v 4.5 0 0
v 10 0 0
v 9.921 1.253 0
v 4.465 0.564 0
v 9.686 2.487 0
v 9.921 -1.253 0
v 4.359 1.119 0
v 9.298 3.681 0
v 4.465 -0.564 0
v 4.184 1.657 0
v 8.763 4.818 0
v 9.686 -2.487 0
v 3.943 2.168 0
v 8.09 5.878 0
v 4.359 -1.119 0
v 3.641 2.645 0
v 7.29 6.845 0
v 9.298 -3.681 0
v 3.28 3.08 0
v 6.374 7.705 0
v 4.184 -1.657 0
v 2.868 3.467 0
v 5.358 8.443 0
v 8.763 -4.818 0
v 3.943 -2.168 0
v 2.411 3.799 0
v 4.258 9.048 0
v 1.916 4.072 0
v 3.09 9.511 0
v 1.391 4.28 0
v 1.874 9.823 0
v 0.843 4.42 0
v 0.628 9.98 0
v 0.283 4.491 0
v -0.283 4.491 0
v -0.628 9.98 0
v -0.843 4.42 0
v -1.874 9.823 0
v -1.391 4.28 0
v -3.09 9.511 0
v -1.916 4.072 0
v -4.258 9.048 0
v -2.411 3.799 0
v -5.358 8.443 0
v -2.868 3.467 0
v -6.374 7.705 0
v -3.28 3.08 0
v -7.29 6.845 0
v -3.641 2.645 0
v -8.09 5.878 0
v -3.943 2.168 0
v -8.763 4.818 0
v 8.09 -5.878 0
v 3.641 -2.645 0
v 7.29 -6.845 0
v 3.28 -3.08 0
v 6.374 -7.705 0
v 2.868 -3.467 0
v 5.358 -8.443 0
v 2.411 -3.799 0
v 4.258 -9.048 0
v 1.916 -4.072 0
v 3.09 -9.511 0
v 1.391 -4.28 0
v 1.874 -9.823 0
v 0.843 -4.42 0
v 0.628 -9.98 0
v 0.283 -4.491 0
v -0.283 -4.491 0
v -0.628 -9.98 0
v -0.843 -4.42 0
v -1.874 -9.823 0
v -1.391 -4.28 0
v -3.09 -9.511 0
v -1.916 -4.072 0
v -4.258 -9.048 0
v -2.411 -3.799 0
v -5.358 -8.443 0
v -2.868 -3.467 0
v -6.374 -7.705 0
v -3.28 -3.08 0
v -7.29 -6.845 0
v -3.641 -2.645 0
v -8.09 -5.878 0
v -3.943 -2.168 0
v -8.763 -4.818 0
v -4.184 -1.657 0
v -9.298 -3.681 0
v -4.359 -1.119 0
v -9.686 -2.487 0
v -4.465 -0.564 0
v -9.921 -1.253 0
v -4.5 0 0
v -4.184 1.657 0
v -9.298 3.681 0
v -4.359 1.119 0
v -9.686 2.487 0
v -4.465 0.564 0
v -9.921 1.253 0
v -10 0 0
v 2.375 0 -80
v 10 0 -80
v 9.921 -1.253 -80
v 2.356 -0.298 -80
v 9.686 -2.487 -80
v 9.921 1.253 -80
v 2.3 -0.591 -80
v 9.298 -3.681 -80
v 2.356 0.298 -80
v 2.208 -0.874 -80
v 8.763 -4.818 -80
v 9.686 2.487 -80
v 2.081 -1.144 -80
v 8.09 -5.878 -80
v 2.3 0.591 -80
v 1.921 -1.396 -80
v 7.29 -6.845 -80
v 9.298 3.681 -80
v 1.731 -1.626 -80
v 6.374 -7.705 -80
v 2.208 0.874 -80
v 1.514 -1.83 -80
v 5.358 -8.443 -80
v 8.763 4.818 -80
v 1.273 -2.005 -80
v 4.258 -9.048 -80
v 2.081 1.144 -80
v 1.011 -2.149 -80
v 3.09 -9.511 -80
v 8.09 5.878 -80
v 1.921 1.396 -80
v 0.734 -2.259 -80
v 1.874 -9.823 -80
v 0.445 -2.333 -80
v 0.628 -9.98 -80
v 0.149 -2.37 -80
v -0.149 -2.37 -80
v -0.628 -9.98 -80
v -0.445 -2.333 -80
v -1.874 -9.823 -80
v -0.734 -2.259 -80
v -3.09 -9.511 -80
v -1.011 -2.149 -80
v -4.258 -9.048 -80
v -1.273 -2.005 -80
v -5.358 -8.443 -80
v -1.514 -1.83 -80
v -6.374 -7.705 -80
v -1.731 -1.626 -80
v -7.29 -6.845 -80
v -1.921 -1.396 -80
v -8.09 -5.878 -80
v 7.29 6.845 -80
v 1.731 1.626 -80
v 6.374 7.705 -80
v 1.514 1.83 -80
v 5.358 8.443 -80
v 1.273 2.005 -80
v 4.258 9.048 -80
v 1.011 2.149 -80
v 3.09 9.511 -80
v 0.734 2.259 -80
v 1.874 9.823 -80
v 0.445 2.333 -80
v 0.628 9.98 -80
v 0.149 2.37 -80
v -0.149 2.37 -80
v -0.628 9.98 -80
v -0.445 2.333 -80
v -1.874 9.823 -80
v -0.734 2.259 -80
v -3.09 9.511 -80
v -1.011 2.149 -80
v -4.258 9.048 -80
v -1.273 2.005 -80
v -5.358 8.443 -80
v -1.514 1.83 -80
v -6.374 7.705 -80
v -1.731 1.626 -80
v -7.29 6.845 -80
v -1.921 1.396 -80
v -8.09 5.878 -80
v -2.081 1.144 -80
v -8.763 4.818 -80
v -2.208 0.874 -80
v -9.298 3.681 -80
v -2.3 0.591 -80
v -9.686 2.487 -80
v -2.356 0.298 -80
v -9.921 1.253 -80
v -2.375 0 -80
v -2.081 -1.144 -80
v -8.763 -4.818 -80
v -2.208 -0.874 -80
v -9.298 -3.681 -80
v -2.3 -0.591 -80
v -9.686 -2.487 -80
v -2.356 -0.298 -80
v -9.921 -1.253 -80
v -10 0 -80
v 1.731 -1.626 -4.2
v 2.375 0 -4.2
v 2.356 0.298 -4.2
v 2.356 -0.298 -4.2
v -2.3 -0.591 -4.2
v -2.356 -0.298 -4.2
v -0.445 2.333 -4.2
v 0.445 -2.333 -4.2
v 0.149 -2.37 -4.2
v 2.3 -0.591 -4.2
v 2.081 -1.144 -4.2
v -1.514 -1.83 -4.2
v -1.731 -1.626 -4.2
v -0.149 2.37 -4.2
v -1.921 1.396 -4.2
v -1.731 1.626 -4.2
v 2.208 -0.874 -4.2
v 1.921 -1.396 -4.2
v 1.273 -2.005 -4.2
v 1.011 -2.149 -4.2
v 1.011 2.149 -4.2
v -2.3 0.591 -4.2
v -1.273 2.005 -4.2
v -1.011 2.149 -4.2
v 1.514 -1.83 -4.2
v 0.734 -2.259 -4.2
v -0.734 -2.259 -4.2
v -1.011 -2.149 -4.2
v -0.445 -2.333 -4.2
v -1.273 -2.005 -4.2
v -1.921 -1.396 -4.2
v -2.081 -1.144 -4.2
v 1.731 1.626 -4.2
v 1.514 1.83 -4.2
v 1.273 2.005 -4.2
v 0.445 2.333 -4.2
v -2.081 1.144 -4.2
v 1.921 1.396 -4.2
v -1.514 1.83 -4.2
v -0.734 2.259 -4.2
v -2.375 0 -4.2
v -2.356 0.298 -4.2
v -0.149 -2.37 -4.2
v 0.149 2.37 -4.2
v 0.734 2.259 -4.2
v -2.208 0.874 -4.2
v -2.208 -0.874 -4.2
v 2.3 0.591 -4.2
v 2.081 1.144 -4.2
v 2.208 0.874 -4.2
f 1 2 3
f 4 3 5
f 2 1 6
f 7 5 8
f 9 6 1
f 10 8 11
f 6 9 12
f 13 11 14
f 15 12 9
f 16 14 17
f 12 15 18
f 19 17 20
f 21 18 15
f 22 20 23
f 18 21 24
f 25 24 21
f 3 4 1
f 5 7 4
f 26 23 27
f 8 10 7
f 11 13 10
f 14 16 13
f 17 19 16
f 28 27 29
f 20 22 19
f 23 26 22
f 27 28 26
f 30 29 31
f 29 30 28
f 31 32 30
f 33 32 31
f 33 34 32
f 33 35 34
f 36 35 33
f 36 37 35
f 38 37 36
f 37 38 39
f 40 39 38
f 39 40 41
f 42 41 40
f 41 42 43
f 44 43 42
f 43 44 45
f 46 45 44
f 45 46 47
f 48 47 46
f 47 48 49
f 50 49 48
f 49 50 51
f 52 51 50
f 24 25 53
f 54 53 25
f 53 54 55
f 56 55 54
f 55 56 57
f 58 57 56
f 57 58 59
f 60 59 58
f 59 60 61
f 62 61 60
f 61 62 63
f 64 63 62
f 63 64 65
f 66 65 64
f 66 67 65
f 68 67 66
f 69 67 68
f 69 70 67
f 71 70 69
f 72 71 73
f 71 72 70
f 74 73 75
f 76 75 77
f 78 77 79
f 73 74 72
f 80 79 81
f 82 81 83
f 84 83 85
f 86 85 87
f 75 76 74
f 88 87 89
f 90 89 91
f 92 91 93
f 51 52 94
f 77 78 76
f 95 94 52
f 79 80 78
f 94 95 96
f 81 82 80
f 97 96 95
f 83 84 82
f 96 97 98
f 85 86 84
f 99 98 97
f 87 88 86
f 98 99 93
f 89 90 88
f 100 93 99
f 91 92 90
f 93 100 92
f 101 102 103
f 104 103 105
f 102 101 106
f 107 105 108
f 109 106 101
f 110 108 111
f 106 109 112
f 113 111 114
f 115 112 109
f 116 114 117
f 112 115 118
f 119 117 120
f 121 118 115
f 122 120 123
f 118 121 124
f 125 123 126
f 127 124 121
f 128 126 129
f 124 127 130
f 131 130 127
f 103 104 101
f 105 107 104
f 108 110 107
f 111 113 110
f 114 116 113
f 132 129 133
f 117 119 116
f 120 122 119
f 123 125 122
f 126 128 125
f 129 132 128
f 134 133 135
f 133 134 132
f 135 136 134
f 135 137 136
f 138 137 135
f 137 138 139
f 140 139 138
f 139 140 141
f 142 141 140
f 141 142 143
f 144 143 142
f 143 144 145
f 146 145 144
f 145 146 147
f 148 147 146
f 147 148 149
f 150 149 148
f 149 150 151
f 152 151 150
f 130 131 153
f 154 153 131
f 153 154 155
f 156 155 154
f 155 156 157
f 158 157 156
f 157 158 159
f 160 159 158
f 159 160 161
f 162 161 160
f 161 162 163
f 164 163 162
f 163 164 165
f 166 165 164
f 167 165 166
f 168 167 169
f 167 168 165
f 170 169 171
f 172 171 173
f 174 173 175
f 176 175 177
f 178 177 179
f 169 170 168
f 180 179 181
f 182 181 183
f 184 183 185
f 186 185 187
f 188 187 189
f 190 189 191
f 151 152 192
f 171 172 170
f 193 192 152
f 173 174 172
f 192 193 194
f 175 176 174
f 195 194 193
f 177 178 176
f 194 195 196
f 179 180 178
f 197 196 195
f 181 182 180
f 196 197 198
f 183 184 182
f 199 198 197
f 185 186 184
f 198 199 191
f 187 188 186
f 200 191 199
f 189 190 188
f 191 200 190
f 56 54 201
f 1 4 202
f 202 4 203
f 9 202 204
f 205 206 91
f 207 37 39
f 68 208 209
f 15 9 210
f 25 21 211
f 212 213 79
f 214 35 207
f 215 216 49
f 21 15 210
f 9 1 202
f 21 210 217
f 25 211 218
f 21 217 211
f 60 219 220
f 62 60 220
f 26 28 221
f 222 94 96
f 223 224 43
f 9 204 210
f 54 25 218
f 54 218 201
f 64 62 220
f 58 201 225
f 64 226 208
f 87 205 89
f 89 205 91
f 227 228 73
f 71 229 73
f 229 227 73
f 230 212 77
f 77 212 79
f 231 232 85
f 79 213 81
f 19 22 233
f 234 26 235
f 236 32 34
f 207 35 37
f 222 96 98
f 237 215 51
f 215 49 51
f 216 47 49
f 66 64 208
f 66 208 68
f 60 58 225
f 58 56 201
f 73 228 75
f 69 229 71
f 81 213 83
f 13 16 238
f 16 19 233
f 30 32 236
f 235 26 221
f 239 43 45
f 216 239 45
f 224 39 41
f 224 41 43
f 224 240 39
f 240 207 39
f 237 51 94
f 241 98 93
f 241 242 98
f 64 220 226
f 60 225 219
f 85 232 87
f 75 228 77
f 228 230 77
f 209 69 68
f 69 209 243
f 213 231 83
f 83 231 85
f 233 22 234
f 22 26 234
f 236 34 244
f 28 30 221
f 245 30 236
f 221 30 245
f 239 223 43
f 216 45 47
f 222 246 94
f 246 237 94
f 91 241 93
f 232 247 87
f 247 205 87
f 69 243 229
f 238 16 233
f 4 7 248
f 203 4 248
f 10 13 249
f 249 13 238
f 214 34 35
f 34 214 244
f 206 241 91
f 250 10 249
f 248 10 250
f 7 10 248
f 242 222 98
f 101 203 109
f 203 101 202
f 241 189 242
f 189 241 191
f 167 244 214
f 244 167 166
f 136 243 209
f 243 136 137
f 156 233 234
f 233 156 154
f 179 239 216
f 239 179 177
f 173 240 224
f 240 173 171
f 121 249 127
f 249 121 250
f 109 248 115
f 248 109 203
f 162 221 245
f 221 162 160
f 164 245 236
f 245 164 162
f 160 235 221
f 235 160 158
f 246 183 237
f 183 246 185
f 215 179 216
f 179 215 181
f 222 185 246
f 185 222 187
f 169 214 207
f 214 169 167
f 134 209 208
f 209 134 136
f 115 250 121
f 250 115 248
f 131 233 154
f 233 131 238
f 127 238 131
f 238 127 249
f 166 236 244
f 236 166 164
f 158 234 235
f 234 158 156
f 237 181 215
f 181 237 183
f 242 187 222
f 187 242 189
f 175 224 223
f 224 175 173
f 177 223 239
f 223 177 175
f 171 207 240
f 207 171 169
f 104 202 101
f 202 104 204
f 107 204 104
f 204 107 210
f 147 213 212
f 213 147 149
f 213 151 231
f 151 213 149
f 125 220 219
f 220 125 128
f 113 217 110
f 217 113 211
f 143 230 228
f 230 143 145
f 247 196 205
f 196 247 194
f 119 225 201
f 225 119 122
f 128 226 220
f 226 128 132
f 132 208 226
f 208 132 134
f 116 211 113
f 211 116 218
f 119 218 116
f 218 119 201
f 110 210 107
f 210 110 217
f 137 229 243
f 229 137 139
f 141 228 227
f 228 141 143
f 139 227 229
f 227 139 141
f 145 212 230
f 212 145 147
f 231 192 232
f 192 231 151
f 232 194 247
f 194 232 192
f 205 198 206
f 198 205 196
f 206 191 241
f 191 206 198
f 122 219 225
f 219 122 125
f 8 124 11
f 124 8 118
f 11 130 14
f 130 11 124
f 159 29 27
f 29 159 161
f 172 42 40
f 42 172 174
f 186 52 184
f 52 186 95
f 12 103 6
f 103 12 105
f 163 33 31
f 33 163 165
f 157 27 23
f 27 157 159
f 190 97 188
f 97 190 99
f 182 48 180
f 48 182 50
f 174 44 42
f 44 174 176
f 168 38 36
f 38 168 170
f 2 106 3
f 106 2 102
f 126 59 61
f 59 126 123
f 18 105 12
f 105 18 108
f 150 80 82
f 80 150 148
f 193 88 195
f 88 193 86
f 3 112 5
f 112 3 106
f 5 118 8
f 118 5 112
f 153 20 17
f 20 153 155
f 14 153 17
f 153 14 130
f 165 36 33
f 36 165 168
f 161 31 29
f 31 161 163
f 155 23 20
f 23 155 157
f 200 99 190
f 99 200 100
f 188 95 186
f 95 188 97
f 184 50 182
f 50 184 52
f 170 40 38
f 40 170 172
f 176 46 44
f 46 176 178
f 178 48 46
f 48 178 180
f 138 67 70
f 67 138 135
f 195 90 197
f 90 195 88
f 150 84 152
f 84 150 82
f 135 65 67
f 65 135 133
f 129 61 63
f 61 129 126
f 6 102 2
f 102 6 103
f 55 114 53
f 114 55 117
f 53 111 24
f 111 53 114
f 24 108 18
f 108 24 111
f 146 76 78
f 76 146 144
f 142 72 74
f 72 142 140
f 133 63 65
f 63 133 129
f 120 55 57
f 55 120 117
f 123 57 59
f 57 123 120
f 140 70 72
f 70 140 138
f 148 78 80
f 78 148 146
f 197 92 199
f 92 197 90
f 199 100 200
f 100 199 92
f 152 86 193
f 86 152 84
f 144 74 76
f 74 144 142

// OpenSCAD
$fn = 50;


difference() {
	union() {
		translate(v = [0, 0, -80.0000000000]) {
			cylinder(h = 80, r = 10.0000000000);
		}
		cylinder(h = 0, r = 13.0000000000);
	}
	union() {
		translate(v = [0, 0, 0]) {
			rotate(a = [0, 0, 0]) {
				difference() {
					union() {
						#translate(v = [0, 0, -80.0000000000]) {
							cylinder(h = 80, r = 2.2500000000);
						}
						#translate(v = [0, 0, -4.2000000000]) {
							cylinder(h = 4.2000000000, r = 10.0000000000, r1 = 2.3750000000, r2 = 4.5000000000);
						}
						#translate(v = [0, 0, -80.0000000000]) {
							cylinder(h = 80, r = 2.3750000000);
						}
						#translate(v = [0, 0, -80.0000000000]) {
							cylinder(h = 80, r = 2.2500000000);
						}
					}
					union();
				}
			}
		}
	}
}
